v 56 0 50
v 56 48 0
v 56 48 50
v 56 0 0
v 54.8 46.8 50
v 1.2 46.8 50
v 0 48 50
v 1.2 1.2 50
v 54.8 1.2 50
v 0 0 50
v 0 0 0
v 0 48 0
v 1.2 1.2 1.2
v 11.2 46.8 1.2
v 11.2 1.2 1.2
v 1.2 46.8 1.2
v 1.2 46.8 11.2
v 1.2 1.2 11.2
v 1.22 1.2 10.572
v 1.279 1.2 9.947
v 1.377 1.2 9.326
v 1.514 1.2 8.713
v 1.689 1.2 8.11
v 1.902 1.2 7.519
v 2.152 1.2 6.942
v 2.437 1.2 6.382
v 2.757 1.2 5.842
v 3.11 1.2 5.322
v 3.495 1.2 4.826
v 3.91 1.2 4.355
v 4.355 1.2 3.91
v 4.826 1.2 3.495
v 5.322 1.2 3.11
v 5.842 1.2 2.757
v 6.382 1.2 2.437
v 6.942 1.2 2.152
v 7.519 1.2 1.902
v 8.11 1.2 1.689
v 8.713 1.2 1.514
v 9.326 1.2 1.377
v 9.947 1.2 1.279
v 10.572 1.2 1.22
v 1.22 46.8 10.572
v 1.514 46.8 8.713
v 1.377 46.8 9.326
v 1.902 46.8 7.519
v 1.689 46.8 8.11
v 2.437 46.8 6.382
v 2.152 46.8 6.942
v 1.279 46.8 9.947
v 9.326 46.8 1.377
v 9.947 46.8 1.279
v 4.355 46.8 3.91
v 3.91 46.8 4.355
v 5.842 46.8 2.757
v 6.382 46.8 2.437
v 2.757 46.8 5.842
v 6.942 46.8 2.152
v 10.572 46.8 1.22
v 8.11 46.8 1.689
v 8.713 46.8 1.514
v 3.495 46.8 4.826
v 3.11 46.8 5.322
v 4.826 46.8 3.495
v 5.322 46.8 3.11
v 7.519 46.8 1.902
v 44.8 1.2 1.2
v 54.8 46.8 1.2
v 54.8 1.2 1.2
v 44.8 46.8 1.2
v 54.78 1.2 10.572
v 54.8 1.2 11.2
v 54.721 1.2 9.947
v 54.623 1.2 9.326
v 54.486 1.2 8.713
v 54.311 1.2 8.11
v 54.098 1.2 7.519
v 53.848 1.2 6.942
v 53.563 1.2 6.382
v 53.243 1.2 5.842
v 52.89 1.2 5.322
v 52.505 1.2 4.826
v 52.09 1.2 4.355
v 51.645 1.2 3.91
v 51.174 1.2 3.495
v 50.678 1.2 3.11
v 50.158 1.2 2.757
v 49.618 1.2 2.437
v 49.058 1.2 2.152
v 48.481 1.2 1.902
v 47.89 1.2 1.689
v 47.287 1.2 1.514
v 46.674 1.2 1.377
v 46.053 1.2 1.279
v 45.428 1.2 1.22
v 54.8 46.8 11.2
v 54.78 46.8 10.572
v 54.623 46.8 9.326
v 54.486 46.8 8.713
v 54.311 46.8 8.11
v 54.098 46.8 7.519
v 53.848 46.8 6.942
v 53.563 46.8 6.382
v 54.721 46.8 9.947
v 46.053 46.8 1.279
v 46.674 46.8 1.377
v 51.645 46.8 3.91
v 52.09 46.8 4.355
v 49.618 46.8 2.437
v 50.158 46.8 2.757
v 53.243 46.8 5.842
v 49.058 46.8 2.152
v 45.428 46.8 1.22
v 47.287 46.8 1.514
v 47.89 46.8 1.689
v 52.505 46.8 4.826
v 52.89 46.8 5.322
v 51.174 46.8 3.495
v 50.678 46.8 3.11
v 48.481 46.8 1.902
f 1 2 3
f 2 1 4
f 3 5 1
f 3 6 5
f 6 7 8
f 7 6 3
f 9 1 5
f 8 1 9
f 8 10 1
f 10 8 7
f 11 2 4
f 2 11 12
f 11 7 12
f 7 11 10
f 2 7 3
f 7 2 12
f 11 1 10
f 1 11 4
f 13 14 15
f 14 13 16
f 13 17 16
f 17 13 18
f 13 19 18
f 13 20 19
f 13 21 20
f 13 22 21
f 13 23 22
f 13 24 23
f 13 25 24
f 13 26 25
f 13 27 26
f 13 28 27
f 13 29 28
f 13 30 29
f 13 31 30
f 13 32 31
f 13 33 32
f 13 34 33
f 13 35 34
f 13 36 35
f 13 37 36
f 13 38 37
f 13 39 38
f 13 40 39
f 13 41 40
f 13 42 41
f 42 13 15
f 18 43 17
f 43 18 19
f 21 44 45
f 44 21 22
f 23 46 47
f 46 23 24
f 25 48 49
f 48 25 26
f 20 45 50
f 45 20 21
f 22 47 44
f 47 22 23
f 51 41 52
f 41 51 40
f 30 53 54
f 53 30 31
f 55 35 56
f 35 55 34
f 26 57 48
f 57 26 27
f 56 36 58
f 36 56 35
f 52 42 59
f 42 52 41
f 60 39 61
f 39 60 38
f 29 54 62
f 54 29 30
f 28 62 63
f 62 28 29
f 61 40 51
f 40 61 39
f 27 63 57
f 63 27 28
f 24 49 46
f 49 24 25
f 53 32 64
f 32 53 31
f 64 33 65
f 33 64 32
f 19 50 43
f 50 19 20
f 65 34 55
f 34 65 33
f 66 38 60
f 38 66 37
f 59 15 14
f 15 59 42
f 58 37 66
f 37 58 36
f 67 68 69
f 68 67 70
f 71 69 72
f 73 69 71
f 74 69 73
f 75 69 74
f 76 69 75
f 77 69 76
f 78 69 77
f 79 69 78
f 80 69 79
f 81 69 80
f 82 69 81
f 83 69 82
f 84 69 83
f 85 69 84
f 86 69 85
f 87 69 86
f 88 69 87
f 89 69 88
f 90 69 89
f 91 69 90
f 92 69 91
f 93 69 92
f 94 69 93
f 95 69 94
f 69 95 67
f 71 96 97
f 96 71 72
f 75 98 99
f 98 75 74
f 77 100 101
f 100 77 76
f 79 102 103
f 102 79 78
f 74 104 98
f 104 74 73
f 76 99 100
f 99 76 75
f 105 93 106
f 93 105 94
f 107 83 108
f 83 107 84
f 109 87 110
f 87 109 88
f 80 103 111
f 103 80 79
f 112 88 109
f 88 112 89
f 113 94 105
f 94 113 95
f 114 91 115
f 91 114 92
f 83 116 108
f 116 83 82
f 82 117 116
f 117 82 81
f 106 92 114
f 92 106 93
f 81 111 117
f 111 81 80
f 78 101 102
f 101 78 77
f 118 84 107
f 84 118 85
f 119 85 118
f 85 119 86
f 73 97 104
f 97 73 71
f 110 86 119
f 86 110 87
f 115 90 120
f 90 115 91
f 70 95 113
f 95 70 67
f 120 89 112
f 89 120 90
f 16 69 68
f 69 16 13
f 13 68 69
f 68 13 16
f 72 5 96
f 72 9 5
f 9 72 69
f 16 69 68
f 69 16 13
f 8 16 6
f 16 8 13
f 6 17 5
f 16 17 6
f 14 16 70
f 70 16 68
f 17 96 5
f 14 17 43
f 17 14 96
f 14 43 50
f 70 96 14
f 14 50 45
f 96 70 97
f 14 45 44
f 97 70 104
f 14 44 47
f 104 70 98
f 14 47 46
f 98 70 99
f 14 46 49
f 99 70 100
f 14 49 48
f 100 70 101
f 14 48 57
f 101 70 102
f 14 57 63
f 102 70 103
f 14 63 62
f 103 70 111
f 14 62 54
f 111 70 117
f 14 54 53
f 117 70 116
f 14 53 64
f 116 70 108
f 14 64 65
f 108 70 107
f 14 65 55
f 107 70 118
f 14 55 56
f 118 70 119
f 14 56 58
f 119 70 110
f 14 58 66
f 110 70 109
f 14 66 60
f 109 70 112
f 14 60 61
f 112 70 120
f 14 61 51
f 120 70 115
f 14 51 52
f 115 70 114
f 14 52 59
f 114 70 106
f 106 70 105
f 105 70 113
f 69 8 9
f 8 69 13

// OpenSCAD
include <boardgame_insert_toolkit_lib.2.scad>;

// determines whether lids are output.
g_b_print_lid = true;

// determines whether boxes are output.
g_b_print_box = true;

// Focus on one box
g_isolated_print_box = "";

// Used to visualize how all of the boxes fit together.
g_b_visualization = false;

// this is the outer wall thickness.
//Default = 1.5mm
g_wall_thickness = 1.2;

// The tolerance value is extra space put between planes of the lid and box that fit together.
// Increase the tolerance to loosen the fit and decrease it to tighten it.
//
// Note that the tolerance is applied exclusively to the lid.
// So if the lid is too tight or too loose, change this value ( up for looser fit, down for tighter fit ) and
// you only need to reprint the lid.
//
// The exception is the stackable box, where the bottom of the box is the lid of the box below,
// in which case the tolerance also affects that box bottom.
//
g_tolerance = 0.15;

// This adjusts the position of the lid detents downward.
// The larger the value, the bigger the gap between the lid and the box.
g_tolerance_detents_pos = 0.1;

aw_box_x = 56.0; // 284 / 2
aw_box_y = 48.0; //
aw_box_z = 50.0;

aw_compartment_size_x = (aw_box_x - 2 * g_wall_thickness);
aw_compartment_size_y = (aw_box_y - 2 * g_wall_thickness);

data =
  [
    [
      "Gugong Player Box",
      [
        [ BOX_SIZE_XYZ, [aw_box_x, aw_box_y, aw_box_z] ],
        [ BOX_NO_LID_B, t],
        [
          BOX_COMPONENT,
          [
            [ CMP_SHAPE, FILLET ],
            [ CMP_NUM_COMPARTMENTS_XY, [1, 1] ],
            [
              CMP_COMPARTMENT_SIZE_XYZ,
              [
                aw_compartment_size_x,
                aw_compartment_size_y,
                aw_box_z - 1 * g_wall_thickness
              ]
            ],
            [ POSITION_XY, [ CENTER, CENTER ] ],
          ]
        ],
      ]
    ]
  ];


MakeAll();
